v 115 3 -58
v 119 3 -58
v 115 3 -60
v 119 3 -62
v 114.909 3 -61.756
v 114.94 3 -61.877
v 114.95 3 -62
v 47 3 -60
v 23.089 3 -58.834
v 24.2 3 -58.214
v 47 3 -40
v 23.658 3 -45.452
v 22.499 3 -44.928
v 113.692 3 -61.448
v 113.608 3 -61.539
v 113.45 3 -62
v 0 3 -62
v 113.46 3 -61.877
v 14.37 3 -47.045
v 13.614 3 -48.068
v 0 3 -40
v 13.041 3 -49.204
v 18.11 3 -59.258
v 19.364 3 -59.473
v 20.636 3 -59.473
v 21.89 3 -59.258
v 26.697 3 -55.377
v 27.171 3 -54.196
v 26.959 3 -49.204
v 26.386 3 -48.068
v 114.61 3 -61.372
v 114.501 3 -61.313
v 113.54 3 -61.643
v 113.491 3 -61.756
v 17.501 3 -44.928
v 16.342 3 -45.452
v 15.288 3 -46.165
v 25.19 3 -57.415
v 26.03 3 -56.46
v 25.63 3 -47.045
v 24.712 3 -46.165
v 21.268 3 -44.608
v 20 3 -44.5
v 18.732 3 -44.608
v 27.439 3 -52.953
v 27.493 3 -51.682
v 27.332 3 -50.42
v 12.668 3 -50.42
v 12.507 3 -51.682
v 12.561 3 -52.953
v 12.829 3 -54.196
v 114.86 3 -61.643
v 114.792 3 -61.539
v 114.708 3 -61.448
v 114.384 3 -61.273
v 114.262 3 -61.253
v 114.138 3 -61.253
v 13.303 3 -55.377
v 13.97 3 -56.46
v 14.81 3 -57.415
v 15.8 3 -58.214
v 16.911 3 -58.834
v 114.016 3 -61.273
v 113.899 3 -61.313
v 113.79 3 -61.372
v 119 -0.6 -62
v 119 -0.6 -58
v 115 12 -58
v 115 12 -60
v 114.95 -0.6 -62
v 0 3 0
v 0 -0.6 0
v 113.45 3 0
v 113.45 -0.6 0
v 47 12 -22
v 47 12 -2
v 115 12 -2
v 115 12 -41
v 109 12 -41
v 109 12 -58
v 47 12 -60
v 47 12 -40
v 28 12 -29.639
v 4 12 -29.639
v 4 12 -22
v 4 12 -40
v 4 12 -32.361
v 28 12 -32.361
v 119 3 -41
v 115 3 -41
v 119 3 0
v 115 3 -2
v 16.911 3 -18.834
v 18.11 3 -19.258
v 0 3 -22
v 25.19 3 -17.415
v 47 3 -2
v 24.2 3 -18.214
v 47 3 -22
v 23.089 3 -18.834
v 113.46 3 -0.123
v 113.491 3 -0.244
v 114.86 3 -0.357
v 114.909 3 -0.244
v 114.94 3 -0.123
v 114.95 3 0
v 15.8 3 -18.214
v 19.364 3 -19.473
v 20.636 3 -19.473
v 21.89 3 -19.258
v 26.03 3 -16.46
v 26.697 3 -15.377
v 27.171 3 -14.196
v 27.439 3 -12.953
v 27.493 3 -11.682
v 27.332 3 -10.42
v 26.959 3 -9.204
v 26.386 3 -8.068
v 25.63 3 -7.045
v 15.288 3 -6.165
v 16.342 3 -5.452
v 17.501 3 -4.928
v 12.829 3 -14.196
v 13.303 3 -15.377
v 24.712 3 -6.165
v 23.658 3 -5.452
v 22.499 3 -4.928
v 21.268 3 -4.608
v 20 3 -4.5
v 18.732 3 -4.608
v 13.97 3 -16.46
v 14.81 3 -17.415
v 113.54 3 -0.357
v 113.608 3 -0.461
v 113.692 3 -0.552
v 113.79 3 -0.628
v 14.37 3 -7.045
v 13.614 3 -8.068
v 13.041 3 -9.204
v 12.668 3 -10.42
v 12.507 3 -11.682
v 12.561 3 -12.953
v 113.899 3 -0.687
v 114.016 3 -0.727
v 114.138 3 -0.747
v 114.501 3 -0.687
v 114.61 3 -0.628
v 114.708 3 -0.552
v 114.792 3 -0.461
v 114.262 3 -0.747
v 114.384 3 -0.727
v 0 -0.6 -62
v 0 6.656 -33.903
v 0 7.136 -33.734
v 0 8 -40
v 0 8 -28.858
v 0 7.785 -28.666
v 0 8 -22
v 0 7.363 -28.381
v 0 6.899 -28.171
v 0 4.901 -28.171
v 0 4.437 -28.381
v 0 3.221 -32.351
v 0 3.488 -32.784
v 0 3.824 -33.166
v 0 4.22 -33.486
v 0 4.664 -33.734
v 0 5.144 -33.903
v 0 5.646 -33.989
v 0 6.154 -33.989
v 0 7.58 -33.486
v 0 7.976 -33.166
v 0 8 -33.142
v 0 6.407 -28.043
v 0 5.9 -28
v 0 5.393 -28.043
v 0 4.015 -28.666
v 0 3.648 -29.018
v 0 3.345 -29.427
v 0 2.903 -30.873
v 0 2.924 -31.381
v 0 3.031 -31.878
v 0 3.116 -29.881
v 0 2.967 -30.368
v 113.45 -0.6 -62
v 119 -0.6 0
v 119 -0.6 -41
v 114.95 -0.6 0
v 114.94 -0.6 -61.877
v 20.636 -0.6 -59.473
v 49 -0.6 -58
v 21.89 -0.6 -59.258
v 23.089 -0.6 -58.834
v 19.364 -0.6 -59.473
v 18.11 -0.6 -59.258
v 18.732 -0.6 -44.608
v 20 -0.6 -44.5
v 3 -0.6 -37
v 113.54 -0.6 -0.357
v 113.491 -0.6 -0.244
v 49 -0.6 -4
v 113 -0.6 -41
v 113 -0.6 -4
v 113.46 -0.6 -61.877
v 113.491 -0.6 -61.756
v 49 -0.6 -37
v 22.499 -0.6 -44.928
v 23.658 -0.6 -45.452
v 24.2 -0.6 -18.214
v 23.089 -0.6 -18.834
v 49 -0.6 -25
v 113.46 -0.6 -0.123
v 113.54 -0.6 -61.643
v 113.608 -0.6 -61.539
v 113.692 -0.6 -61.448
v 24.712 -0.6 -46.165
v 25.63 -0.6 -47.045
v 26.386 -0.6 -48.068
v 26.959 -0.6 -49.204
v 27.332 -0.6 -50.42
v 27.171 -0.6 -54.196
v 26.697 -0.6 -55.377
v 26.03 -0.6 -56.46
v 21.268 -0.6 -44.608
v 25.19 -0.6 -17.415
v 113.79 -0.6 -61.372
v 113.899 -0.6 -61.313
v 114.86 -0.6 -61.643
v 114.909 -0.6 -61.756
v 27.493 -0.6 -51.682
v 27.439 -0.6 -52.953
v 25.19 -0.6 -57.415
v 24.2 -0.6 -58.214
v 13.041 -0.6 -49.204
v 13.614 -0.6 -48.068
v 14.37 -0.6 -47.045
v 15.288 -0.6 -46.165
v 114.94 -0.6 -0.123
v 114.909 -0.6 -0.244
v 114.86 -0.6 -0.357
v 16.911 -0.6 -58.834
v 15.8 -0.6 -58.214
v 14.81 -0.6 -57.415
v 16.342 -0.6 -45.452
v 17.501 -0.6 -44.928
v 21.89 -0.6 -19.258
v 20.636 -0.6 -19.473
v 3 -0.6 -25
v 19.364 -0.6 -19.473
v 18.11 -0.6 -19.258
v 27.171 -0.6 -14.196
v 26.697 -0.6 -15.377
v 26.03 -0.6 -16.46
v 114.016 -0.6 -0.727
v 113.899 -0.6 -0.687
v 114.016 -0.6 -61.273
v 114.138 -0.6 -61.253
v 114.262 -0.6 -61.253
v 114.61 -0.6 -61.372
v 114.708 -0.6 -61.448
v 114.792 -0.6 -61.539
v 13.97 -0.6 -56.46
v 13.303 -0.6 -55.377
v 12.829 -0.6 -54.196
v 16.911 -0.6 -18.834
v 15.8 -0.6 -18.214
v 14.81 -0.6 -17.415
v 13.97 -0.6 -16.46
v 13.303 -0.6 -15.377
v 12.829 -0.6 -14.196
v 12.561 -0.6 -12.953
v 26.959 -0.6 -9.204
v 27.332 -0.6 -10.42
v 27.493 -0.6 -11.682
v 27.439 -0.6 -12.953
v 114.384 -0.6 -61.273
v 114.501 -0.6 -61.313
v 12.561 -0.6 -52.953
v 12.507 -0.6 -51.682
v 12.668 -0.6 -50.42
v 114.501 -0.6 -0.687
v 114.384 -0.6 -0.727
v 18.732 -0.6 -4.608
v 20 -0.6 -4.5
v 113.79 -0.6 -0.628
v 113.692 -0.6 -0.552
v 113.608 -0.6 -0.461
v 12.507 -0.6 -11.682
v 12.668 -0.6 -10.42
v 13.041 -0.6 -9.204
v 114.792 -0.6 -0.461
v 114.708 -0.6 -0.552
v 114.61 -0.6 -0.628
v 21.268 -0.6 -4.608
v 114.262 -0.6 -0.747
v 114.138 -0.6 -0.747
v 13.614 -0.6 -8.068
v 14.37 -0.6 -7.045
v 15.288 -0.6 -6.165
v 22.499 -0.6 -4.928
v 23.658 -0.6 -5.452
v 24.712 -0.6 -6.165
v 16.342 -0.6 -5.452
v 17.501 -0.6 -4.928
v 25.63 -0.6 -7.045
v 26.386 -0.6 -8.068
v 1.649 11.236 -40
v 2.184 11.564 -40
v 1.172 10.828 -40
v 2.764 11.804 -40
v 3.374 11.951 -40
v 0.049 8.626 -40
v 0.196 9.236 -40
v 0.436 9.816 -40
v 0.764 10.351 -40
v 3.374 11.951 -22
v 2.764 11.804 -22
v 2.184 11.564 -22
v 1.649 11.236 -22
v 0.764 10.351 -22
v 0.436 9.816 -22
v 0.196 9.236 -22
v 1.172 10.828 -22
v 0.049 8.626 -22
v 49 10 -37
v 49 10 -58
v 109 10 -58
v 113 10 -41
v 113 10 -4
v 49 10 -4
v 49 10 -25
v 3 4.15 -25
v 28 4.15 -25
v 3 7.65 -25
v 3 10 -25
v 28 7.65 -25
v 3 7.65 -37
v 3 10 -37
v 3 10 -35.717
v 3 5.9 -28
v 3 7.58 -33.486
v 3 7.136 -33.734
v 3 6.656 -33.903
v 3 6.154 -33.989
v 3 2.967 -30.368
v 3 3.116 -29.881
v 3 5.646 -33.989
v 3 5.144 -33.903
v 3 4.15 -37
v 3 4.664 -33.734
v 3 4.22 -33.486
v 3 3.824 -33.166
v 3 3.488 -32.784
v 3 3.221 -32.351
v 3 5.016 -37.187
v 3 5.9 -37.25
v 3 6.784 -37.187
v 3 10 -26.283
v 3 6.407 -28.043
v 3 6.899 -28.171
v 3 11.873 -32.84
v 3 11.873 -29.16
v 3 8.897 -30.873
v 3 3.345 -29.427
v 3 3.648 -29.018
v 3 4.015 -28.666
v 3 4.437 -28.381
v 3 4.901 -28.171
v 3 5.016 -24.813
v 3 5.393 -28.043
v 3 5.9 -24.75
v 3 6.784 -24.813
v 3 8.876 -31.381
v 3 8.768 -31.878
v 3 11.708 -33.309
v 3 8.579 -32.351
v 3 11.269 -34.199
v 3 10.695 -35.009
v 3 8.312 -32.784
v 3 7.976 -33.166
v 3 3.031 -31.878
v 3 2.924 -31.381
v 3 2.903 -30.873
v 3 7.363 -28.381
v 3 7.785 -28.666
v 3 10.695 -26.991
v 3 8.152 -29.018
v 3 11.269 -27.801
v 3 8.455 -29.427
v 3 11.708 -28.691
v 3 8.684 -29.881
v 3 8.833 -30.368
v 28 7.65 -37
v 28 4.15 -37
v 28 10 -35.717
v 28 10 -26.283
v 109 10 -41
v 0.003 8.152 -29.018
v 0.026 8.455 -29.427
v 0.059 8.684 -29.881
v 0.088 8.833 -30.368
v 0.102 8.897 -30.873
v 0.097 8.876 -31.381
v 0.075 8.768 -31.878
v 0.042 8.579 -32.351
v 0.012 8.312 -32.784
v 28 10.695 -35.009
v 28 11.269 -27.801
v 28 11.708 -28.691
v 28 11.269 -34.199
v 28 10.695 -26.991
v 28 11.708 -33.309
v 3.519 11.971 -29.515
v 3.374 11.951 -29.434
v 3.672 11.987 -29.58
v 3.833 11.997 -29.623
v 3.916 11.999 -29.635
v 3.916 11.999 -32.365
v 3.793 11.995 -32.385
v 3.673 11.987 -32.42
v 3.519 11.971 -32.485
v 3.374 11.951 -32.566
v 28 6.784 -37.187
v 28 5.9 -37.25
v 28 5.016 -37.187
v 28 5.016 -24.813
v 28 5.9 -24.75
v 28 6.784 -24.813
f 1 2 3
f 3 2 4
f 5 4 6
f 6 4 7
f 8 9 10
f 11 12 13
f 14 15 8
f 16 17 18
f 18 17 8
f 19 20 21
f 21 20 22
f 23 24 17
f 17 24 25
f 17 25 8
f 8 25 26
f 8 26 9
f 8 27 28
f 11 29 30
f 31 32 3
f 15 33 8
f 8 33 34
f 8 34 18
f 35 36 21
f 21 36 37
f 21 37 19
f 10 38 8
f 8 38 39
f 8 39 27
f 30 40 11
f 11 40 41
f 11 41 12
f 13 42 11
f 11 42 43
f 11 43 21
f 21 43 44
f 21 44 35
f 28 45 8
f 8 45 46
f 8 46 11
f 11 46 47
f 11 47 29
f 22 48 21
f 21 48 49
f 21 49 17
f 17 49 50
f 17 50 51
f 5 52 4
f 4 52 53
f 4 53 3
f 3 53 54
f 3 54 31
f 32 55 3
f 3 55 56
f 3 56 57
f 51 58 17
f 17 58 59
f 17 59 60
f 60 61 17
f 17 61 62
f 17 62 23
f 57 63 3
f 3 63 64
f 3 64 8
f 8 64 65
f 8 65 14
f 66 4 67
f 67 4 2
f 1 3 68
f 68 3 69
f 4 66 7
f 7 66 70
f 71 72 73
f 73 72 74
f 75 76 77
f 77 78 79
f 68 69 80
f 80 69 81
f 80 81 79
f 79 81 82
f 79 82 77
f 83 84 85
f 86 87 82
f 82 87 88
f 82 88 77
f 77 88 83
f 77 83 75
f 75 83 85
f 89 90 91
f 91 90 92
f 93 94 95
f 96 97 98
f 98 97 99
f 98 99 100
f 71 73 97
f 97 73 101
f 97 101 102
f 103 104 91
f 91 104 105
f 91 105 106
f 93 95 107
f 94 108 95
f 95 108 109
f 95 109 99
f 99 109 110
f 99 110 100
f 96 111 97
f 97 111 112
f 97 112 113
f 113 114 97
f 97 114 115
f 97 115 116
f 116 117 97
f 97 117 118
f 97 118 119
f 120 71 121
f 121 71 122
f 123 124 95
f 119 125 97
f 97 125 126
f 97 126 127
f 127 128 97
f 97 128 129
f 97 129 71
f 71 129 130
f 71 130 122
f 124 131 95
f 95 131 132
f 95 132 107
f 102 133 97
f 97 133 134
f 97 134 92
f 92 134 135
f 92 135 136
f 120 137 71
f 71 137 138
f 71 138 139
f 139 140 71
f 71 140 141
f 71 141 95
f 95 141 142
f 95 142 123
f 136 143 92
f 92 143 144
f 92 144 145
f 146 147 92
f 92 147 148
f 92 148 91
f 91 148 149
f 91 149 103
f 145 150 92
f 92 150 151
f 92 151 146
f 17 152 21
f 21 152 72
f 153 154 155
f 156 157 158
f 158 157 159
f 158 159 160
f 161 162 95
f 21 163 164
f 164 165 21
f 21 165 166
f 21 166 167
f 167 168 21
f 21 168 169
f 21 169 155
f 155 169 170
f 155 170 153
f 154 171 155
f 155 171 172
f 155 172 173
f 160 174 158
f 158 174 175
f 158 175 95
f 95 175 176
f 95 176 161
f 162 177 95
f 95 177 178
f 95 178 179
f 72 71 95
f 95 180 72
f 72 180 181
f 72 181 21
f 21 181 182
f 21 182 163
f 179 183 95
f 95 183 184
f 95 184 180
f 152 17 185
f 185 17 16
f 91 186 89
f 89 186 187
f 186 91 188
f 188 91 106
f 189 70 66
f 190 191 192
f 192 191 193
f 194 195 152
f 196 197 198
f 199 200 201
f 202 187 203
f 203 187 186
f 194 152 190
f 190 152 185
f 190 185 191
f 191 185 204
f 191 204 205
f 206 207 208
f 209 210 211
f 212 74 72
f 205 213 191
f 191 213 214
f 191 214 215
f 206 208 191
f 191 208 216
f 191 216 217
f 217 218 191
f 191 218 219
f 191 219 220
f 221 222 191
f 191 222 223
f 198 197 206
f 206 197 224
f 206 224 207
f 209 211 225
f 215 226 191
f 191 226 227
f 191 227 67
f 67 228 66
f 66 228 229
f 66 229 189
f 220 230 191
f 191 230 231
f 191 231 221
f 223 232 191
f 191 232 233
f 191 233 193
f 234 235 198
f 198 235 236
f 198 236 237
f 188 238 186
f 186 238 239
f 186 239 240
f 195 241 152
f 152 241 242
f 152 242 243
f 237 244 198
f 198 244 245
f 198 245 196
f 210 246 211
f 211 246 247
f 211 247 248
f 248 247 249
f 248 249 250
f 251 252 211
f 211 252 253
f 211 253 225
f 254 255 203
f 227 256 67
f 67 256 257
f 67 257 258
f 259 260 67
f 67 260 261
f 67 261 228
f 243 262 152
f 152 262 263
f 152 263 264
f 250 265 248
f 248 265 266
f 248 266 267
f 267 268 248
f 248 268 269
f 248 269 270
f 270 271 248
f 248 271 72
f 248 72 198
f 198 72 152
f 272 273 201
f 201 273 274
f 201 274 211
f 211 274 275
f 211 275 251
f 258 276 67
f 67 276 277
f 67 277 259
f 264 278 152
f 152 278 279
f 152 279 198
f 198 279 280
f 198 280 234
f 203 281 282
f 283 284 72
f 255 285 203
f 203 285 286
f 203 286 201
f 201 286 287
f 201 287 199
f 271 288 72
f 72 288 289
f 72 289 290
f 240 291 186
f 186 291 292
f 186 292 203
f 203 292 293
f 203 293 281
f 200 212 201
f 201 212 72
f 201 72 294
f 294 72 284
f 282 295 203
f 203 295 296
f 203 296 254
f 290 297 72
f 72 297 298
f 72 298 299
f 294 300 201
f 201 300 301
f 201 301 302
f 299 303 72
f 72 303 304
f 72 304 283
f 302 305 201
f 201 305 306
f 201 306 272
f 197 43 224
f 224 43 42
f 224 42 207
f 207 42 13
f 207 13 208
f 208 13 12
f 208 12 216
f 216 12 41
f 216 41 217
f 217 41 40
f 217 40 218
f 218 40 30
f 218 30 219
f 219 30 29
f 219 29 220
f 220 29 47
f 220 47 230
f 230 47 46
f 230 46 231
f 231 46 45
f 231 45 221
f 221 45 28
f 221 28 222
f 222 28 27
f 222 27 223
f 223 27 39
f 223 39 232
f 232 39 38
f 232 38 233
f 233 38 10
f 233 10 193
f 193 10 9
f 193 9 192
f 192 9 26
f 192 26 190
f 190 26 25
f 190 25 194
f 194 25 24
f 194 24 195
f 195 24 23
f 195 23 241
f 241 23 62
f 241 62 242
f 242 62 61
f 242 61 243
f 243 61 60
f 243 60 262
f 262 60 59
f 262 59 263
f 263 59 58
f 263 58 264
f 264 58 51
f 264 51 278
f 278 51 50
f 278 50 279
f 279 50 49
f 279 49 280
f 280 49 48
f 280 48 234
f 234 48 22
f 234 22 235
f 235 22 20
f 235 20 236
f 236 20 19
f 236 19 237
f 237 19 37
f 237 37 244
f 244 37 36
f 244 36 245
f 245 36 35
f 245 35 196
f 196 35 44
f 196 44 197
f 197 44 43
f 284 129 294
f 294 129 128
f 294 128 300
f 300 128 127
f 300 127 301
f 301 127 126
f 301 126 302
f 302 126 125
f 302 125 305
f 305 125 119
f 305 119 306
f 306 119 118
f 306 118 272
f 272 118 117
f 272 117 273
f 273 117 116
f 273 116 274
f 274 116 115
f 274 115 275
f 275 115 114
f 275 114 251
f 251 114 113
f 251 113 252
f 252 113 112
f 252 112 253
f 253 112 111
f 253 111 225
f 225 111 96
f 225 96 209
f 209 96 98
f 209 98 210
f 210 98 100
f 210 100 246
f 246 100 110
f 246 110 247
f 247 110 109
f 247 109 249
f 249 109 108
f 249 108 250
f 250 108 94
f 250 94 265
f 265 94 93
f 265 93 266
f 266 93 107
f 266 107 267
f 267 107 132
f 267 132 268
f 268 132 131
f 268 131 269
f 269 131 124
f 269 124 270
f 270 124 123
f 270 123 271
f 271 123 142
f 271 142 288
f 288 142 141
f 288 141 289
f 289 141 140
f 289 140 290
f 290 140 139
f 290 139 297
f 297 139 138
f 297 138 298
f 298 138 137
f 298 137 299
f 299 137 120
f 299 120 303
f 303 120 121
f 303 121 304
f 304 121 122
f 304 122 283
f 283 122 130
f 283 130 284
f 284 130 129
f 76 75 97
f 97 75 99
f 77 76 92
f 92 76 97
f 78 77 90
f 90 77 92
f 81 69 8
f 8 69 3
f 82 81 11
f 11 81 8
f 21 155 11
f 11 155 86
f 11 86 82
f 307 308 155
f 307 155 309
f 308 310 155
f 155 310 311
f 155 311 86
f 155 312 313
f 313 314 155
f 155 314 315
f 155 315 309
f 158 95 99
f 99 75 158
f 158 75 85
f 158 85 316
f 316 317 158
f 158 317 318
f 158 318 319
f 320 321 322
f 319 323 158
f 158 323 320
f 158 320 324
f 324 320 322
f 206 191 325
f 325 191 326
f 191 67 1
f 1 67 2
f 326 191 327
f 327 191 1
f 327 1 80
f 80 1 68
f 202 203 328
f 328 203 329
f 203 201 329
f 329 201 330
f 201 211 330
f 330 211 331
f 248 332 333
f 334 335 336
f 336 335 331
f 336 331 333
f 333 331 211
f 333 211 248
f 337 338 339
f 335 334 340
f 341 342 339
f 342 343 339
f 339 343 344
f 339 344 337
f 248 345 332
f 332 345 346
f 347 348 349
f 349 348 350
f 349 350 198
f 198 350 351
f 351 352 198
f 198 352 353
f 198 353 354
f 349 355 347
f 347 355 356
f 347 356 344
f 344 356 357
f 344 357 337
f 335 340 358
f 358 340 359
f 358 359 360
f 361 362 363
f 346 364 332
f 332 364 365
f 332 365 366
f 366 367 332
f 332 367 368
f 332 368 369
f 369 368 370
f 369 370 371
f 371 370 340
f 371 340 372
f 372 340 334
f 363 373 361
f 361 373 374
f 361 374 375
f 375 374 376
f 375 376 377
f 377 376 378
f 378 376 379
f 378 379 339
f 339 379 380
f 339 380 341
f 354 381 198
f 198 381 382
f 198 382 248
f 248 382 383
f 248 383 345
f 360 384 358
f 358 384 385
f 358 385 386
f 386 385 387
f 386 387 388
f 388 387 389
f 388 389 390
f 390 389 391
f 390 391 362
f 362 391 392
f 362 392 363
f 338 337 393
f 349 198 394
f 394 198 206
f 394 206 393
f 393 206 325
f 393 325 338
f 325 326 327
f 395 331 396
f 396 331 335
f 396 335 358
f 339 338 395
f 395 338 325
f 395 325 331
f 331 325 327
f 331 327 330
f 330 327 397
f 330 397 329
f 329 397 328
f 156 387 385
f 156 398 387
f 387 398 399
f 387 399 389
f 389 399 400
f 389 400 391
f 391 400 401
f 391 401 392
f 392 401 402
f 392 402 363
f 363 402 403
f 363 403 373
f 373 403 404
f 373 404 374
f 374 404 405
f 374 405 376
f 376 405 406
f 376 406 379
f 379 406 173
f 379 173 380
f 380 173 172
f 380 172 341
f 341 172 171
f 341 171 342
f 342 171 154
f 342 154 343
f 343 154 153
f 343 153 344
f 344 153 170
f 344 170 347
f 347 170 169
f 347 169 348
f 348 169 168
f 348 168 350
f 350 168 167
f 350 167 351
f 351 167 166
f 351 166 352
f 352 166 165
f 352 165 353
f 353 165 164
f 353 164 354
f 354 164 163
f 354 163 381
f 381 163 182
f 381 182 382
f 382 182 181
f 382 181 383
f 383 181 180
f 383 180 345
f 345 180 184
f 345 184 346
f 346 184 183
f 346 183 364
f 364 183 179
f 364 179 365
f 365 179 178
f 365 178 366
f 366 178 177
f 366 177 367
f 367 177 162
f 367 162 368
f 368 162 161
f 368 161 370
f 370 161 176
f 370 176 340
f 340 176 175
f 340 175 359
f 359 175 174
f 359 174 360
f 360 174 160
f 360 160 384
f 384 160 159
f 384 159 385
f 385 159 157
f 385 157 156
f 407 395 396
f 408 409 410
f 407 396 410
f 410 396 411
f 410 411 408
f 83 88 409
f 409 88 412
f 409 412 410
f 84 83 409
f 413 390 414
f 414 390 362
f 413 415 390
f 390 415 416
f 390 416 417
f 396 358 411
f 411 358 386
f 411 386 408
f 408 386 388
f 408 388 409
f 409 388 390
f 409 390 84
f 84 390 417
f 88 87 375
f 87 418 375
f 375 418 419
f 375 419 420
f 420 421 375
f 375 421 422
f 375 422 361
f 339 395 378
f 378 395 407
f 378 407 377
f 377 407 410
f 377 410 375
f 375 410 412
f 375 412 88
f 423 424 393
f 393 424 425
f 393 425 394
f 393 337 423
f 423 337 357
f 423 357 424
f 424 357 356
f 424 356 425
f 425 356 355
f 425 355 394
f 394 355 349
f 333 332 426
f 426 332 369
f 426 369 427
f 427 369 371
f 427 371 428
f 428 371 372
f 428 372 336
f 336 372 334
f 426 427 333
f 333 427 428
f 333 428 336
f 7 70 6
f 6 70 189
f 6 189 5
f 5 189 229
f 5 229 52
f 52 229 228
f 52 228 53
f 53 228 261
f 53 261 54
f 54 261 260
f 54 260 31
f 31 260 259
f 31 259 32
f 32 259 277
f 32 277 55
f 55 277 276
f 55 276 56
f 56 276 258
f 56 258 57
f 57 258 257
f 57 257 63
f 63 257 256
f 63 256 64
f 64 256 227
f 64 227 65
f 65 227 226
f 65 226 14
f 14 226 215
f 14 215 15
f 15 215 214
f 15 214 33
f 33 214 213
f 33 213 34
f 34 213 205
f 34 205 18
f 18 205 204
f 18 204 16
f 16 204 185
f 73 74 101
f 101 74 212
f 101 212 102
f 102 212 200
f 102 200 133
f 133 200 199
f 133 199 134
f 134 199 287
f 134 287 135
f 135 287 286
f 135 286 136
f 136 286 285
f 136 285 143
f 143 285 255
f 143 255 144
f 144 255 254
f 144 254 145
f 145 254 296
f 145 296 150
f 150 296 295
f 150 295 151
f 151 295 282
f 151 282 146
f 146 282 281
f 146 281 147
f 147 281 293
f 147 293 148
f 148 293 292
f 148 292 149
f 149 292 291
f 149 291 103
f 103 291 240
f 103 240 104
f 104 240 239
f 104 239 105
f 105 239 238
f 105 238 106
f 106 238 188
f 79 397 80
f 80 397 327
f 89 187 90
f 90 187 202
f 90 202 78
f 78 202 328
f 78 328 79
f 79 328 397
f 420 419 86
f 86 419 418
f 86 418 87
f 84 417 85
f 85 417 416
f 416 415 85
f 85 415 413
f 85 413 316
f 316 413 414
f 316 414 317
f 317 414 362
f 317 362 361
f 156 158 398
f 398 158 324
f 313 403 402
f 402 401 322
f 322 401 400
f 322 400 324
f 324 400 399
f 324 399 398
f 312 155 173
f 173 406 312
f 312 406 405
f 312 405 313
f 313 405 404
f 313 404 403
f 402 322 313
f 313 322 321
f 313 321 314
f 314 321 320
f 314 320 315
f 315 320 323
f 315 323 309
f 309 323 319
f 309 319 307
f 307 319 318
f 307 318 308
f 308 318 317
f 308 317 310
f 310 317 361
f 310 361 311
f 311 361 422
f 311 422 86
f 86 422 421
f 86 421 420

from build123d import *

# Parameters (mm, degrees)
RESSALTO_EXTRUS_O1_DEPTH      = 3
RESSALTO_EXTRUS_O1_DEPTH_BACK = 0.6
ESBO_O1_W                     = 119
ESBO_O1_H                     = 62
ESBO_O1_R                     = 7.5
RESSALTO_EXTRUS_O2_DEPTH      = 9
CORTE_EXTRUS_O1_START         = -2
CORTE_EXTRUS_O1_DEPTH         = 133.772994327
ESBO_O4_R                     = 3
CORTE_EXTRUS_O2_DEPTH         = 28
CORTE_EXTRUS_O3_START         = -3
ESBO_O4_4_R                   = 6.25
ESBO_O4_4_R_2                 = 3
CORTE_EXTRUS_O3_DEPTH         = 25
ESBO_O6_R                     = 0.75
CORTE_EXTRUS_O5_DEPTH         = 3.6
CORTE_EXTRUS_O6_REACH         = 136.773
ESBO_O7_W                     = 10
ESBO_O7_H                     = 17
FILETE1_R                     = 4


with BuildPart() as part:
    # Esboço1 → Ressalto-extrusão1 (new, two sides: drawn at the far end of the back side and taken through both)
    with BuildSketch(Plane(origin=(0, 0, 0), x_dir=(1, 0, 0), z_dir=(0, 1, 0)).offset(-RESSALTO_EXTRUS_O1_DEPTH_BACK)):
        with Locations((59.5, 31)):
            Rectangle(ESBO_O1_W, ESBO_O1_H)
        with Locations(Location((20, 52, 0), (0, 0, 270))):
            Circle(ESBO_O1_R, mode=Mode.SUBTRACT)
        with Locations(Location((20, 12, 0), (0, 0, 270))):
            Circle(ESBO_O1_R, mode=Mode.SUBTRACT)
    extrude(amount=RESSALTO_EXTRUS_O1_DEPTH + RESSALTO_EXTRUS_O1_DEPTH_BACK)

    # Esboço2 → Ressalto-extrusão2 (add)
    with BuildSketch(Plane(origin=(0, 3, 0), x_dir=(1, 0, 0), z_dir=(0, 1, 0))):
        Polygon((47, 2), (115, 2), (115, 60), (47, 60), (47, 40), (0, 40), (0, 22), (47, 22), align=None)
    extrude(amount=RESSALTO_EXTRUS_O2_DEPTH)

    # Esboço3 → Corte-extrusão1 (cut, through all)
    with BuildSketch(Plane(origin=(0, 12, 0), x_dir=(1, 0, 0), z_dir=(0, 1, 0)).offset(CORTE_EXTRUS_O1_START)):
        Polygon((49, 58), (113, 58), (113, 4), (49, 4), (49, 25), (3, 25), (3, 37), (49, 37), align=None)
    extrude(amount=-CORTE_EXTRUS_O1_DEPTH, mode=Mode.SUBTRACT)

    # Esboço4 → Corte-extrusão2 (cut)
    with BuildSketch(Plane.ZY):
        with Locations((-31, 5.9)):
            Circle(ESBO_O4_R)
    extrude(amount=-CORTE_EXTRUS_O2_DEPTH, mode=Mode.SUBTRACT)

    # Esboço4<4> → Corte-extrusão3 (cut)
    with BuildSketch(Plane.ZY.offset(CORTE_EXTRUS_O3_START)):
        with Locations((-31, 5.9)):
            Circle(ESBO_O4_4_R)
        with Locations((-31, 5.9)):
            Circle(ESBO_O4_4_R_2, mode=Mode.SUBTRACT)
    extrude(amount=-CORTE_EXTRUS_O3_DEPTH, mode=Mode.SUBTRACT)

    # Esboço6 → Corte-extrusão5 (cut)
    with BuildSketch(Plane.XZ.offset(0.6)):
        with Locations((114.2, 0)):
            Circle(ESBO_O6_R)
        with Locations((114.2, -62)):
            Circle(ESBO_O6_R)
    extrude(amount=-CORTE_EXTRUS_O5_DEPTH, mode=Mode.SUBTRACT)

    # Corte-extrusão6: up to this face of the body (flat: up to its plane)
    corte_extrus_o6_end = Plane(part.part.faces().sort_by_distance((71.642099046, 12, -31))[0])
    # Esboço7 → Corte-extrusão6 (cut, up to the picked face)
    with BuildSketch(Plane(origin=(0, -0.6, 0), x_dir=(-1, 0, 0), z_dir=(0, -1, 0)), mode=Mode.PRIVATE) as corte_extrus_o6_sk1:
        with Locations((-114, 49.5)):
            Rectangle(ESBO_O7_W, ESBO_O7_H)
    corte_extrus_o6_tool1 = split(extrude(corte_extrus_o6_sk1.sketch, amount=-CORTE_EXTRUS_O6_REACH, mode=Mode.PRIVATE), bisect_by=corte_extrus_o6_end, keep=Keep.BOTH, mode=Mode.PRIVATE)
    add(corte_extrus_o6_tool1.solids().sort_by(Axis((114, -0.6, -49.5), (0, 1, 0)))[0], mode=Mode.SUBTRACT)

    # Filete1
    # the kernel refuses this fillet: 4 mm, written as the material it takes off along each edge
    with BuildSketch(Plane(origin=(0, 12, -50), x_dir=(1, 0, 0), z_dir=(0, 0, 1))) as filete1_piece_1:
        with BuildLine():
            CenterArc((FILETE1_R, -FILETE1_R), FILETE1_R, 90, 90)
            Line((0, -FILETE1_R), (0, 0))
            Line((0, 0), (FILETE1_R, 0))
        make_face()
    extrude(amount=38, mode=Mode.SUBTRACT)


solid = part.part
